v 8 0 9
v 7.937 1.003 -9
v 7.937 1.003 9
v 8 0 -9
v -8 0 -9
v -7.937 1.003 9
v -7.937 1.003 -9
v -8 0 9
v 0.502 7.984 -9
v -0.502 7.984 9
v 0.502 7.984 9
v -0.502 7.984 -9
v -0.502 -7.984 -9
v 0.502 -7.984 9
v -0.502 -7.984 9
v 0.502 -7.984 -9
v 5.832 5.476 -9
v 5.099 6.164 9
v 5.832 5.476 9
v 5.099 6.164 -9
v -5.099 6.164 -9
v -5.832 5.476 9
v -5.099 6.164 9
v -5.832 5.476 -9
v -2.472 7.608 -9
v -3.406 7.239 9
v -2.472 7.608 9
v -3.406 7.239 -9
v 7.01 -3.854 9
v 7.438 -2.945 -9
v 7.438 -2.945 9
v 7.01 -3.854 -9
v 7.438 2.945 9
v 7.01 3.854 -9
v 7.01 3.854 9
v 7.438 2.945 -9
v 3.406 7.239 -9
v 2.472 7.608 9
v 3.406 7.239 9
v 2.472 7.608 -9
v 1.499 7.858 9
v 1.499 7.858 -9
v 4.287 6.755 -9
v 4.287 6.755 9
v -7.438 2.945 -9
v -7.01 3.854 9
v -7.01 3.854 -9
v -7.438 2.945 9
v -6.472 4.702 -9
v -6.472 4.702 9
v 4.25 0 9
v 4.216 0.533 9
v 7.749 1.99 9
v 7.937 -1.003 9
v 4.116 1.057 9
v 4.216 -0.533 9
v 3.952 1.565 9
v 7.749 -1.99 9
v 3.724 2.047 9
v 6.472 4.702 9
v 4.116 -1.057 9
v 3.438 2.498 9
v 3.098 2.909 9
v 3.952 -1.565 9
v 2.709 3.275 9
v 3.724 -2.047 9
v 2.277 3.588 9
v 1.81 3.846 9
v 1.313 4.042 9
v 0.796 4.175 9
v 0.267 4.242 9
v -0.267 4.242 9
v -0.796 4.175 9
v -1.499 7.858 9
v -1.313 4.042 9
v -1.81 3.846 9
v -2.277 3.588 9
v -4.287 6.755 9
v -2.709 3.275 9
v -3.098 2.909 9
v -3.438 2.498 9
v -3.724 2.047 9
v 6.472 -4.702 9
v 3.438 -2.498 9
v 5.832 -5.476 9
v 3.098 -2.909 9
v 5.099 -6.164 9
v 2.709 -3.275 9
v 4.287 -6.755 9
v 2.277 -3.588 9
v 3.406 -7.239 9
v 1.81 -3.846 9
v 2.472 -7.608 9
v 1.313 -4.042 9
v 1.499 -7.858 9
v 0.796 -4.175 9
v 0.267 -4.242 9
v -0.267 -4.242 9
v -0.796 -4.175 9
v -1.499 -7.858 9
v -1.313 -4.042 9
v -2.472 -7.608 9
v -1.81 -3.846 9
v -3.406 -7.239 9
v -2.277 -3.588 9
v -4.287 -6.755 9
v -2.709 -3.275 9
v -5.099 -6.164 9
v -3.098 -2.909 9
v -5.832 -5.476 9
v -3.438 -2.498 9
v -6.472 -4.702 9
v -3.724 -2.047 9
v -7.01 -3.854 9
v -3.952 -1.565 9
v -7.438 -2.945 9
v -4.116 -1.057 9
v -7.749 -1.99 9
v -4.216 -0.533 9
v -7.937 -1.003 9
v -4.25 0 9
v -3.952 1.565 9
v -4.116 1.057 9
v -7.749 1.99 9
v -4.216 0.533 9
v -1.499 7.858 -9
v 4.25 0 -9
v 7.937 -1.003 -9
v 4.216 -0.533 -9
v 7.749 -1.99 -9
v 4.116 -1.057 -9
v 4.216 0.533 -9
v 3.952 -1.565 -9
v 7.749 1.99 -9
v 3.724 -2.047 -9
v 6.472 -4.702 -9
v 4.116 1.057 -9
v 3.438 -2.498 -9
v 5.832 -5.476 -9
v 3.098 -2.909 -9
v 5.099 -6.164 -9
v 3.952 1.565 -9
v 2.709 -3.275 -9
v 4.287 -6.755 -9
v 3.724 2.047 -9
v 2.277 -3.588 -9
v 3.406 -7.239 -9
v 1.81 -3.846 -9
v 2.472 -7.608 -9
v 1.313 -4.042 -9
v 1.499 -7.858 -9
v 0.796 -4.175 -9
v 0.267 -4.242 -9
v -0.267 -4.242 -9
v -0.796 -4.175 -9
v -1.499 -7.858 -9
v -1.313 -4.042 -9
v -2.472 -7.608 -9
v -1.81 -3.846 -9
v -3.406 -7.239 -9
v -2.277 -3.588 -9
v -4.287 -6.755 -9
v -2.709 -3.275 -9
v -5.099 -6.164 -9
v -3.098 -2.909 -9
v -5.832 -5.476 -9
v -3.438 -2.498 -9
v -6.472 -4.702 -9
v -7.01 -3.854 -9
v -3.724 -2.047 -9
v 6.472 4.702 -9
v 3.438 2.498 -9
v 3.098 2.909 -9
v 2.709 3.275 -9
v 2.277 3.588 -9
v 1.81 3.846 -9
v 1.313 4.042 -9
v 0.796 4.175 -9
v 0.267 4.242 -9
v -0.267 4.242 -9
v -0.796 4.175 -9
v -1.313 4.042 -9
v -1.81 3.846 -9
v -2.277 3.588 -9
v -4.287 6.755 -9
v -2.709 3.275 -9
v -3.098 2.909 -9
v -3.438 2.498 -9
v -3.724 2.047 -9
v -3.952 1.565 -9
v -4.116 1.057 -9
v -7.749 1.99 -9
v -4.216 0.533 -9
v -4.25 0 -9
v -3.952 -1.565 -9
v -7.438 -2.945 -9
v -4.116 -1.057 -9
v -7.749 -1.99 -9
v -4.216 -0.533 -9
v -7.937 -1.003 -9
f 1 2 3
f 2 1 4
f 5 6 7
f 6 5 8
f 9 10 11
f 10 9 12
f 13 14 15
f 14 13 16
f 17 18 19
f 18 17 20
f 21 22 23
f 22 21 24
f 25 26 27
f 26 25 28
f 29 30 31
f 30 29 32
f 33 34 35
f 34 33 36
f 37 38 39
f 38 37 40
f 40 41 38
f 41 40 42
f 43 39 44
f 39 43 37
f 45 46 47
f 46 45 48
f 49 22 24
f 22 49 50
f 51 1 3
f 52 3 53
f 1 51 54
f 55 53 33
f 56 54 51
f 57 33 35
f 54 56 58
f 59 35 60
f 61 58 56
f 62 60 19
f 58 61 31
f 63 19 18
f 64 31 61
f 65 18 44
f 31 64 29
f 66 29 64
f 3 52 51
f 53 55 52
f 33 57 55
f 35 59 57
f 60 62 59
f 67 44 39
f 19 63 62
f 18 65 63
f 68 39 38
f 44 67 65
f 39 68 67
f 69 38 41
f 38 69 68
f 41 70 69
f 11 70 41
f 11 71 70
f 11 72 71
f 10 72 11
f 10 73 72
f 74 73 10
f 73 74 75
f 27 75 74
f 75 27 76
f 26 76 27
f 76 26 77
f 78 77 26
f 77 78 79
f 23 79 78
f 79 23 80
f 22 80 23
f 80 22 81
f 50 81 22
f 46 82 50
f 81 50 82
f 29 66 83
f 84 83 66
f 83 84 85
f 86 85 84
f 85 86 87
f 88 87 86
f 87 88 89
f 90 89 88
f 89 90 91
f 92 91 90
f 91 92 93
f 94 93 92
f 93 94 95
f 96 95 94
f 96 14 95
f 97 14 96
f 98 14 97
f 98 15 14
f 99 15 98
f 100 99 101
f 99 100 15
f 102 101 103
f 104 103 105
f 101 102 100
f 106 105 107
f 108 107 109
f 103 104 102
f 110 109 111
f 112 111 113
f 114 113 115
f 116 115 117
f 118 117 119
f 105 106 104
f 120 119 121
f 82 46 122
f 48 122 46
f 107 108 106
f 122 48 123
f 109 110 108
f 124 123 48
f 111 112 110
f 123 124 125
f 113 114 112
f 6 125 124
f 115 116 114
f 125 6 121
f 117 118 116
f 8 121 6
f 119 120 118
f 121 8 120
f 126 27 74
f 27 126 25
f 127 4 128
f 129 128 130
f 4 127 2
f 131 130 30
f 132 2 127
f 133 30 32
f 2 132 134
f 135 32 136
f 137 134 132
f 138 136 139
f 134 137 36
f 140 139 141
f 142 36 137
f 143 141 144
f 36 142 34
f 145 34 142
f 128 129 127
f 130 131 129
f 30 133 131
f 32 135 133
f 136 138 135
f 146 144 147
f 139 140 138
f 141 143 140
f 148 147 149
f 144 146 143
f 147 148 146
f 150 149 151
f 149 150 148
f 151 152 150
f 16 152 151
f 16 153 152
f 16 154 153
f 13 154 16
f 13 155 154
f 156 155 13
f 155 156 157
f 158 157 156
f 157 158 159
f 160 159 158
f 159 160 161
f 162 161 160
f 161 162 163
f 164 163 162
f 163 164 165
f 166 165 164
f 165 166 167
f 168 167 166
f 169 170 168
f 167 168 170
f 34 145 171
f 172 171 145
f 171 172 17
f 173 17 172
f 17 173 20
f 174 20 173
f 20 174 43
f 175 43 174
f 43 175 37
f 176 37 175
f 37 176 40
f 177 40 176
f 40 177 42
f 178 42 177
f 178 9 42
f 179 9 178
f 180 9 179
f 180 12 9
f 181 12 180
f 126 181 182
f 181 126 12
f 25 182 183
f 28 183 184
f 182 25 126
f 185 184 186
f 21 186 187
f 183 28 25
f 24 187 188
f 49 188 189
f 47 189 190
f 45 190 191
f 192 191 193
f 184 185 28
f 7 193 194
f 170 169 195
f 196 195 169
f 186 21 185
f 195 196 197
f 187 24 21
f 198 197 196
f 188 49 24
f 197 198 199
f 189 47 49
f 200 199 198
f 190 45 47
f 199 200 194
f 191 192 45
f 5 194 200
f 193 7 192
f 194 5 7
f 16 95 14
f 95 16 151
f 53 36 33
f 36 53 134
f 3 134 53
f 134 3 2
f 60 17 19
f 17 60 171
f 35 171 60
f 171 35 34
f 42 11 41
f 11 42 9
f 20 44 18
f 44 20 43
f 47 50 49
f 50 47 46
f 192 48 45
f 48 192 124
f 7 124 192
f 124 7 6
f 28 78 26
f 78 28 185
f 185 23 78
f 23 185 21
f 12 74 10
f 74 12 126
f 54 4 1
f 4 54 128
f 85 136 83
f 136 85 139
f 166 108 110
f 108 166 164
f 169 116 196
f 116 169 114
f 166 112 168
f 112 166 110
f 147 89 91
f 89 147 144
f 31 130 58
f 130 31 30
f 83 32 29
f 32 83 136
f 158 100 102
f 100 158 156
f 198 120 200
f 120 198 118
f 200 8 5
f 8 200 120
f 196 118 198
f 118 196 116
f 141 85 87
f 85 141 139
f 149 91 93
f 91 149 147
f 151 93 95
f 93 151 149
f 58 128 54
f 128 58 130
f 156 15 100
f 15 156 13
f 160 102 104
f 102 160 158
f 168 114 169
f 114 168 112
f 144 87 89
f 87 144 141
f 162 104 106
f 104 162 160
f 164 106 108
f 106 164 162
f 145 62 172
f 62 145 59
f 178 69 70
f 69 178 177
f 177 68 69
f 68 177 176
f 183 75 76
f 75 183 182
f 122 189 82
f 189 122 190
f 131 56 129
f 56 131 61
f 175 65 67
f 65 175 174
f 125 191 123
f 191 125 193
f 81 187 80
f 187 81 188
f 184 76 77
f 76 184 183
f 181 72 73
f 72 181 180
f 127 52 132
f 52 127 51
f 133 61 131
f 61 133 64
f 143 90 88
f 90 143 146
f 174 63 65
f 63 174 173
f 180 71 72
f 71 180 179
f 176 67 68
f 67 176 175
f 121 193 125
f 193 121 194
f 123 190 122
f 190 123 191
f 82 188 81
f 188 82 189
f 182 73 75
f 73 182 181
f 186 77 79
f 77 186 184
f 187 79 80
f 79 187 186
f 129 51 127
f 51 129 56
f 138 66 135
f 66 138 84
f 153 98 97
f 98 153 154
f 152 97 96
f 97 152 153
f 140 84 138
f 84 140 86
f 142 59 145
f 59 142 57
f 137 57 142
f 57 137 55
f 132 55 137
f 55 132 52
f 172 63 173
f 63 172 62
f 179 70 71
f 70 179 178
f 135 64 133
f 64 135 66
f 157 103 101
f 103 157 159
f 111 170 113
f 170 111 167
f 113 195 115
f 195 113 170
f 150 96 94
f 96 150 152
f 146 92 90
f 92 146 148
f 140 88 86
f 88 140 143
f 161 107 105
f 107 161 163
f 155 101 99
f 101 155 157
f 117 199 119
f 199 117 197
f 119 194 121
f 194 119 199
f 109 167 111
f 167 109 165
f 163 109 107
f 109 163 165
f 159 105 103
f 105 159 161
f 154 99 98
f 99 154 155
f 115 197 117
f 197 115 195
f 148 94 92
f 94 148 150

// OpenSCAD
$fn = 50;


difference() {
	union() {
		translate(v = [0, 0, -9.0000000000]) {
			cylinder(h = 18, r = 8.0000000000);
		}
	}
	union() {
		translate(v = [0, 0, -100.0000000000]) {
			cylinder(h = 200, r = 4.2500000000);
		}
	}
}
